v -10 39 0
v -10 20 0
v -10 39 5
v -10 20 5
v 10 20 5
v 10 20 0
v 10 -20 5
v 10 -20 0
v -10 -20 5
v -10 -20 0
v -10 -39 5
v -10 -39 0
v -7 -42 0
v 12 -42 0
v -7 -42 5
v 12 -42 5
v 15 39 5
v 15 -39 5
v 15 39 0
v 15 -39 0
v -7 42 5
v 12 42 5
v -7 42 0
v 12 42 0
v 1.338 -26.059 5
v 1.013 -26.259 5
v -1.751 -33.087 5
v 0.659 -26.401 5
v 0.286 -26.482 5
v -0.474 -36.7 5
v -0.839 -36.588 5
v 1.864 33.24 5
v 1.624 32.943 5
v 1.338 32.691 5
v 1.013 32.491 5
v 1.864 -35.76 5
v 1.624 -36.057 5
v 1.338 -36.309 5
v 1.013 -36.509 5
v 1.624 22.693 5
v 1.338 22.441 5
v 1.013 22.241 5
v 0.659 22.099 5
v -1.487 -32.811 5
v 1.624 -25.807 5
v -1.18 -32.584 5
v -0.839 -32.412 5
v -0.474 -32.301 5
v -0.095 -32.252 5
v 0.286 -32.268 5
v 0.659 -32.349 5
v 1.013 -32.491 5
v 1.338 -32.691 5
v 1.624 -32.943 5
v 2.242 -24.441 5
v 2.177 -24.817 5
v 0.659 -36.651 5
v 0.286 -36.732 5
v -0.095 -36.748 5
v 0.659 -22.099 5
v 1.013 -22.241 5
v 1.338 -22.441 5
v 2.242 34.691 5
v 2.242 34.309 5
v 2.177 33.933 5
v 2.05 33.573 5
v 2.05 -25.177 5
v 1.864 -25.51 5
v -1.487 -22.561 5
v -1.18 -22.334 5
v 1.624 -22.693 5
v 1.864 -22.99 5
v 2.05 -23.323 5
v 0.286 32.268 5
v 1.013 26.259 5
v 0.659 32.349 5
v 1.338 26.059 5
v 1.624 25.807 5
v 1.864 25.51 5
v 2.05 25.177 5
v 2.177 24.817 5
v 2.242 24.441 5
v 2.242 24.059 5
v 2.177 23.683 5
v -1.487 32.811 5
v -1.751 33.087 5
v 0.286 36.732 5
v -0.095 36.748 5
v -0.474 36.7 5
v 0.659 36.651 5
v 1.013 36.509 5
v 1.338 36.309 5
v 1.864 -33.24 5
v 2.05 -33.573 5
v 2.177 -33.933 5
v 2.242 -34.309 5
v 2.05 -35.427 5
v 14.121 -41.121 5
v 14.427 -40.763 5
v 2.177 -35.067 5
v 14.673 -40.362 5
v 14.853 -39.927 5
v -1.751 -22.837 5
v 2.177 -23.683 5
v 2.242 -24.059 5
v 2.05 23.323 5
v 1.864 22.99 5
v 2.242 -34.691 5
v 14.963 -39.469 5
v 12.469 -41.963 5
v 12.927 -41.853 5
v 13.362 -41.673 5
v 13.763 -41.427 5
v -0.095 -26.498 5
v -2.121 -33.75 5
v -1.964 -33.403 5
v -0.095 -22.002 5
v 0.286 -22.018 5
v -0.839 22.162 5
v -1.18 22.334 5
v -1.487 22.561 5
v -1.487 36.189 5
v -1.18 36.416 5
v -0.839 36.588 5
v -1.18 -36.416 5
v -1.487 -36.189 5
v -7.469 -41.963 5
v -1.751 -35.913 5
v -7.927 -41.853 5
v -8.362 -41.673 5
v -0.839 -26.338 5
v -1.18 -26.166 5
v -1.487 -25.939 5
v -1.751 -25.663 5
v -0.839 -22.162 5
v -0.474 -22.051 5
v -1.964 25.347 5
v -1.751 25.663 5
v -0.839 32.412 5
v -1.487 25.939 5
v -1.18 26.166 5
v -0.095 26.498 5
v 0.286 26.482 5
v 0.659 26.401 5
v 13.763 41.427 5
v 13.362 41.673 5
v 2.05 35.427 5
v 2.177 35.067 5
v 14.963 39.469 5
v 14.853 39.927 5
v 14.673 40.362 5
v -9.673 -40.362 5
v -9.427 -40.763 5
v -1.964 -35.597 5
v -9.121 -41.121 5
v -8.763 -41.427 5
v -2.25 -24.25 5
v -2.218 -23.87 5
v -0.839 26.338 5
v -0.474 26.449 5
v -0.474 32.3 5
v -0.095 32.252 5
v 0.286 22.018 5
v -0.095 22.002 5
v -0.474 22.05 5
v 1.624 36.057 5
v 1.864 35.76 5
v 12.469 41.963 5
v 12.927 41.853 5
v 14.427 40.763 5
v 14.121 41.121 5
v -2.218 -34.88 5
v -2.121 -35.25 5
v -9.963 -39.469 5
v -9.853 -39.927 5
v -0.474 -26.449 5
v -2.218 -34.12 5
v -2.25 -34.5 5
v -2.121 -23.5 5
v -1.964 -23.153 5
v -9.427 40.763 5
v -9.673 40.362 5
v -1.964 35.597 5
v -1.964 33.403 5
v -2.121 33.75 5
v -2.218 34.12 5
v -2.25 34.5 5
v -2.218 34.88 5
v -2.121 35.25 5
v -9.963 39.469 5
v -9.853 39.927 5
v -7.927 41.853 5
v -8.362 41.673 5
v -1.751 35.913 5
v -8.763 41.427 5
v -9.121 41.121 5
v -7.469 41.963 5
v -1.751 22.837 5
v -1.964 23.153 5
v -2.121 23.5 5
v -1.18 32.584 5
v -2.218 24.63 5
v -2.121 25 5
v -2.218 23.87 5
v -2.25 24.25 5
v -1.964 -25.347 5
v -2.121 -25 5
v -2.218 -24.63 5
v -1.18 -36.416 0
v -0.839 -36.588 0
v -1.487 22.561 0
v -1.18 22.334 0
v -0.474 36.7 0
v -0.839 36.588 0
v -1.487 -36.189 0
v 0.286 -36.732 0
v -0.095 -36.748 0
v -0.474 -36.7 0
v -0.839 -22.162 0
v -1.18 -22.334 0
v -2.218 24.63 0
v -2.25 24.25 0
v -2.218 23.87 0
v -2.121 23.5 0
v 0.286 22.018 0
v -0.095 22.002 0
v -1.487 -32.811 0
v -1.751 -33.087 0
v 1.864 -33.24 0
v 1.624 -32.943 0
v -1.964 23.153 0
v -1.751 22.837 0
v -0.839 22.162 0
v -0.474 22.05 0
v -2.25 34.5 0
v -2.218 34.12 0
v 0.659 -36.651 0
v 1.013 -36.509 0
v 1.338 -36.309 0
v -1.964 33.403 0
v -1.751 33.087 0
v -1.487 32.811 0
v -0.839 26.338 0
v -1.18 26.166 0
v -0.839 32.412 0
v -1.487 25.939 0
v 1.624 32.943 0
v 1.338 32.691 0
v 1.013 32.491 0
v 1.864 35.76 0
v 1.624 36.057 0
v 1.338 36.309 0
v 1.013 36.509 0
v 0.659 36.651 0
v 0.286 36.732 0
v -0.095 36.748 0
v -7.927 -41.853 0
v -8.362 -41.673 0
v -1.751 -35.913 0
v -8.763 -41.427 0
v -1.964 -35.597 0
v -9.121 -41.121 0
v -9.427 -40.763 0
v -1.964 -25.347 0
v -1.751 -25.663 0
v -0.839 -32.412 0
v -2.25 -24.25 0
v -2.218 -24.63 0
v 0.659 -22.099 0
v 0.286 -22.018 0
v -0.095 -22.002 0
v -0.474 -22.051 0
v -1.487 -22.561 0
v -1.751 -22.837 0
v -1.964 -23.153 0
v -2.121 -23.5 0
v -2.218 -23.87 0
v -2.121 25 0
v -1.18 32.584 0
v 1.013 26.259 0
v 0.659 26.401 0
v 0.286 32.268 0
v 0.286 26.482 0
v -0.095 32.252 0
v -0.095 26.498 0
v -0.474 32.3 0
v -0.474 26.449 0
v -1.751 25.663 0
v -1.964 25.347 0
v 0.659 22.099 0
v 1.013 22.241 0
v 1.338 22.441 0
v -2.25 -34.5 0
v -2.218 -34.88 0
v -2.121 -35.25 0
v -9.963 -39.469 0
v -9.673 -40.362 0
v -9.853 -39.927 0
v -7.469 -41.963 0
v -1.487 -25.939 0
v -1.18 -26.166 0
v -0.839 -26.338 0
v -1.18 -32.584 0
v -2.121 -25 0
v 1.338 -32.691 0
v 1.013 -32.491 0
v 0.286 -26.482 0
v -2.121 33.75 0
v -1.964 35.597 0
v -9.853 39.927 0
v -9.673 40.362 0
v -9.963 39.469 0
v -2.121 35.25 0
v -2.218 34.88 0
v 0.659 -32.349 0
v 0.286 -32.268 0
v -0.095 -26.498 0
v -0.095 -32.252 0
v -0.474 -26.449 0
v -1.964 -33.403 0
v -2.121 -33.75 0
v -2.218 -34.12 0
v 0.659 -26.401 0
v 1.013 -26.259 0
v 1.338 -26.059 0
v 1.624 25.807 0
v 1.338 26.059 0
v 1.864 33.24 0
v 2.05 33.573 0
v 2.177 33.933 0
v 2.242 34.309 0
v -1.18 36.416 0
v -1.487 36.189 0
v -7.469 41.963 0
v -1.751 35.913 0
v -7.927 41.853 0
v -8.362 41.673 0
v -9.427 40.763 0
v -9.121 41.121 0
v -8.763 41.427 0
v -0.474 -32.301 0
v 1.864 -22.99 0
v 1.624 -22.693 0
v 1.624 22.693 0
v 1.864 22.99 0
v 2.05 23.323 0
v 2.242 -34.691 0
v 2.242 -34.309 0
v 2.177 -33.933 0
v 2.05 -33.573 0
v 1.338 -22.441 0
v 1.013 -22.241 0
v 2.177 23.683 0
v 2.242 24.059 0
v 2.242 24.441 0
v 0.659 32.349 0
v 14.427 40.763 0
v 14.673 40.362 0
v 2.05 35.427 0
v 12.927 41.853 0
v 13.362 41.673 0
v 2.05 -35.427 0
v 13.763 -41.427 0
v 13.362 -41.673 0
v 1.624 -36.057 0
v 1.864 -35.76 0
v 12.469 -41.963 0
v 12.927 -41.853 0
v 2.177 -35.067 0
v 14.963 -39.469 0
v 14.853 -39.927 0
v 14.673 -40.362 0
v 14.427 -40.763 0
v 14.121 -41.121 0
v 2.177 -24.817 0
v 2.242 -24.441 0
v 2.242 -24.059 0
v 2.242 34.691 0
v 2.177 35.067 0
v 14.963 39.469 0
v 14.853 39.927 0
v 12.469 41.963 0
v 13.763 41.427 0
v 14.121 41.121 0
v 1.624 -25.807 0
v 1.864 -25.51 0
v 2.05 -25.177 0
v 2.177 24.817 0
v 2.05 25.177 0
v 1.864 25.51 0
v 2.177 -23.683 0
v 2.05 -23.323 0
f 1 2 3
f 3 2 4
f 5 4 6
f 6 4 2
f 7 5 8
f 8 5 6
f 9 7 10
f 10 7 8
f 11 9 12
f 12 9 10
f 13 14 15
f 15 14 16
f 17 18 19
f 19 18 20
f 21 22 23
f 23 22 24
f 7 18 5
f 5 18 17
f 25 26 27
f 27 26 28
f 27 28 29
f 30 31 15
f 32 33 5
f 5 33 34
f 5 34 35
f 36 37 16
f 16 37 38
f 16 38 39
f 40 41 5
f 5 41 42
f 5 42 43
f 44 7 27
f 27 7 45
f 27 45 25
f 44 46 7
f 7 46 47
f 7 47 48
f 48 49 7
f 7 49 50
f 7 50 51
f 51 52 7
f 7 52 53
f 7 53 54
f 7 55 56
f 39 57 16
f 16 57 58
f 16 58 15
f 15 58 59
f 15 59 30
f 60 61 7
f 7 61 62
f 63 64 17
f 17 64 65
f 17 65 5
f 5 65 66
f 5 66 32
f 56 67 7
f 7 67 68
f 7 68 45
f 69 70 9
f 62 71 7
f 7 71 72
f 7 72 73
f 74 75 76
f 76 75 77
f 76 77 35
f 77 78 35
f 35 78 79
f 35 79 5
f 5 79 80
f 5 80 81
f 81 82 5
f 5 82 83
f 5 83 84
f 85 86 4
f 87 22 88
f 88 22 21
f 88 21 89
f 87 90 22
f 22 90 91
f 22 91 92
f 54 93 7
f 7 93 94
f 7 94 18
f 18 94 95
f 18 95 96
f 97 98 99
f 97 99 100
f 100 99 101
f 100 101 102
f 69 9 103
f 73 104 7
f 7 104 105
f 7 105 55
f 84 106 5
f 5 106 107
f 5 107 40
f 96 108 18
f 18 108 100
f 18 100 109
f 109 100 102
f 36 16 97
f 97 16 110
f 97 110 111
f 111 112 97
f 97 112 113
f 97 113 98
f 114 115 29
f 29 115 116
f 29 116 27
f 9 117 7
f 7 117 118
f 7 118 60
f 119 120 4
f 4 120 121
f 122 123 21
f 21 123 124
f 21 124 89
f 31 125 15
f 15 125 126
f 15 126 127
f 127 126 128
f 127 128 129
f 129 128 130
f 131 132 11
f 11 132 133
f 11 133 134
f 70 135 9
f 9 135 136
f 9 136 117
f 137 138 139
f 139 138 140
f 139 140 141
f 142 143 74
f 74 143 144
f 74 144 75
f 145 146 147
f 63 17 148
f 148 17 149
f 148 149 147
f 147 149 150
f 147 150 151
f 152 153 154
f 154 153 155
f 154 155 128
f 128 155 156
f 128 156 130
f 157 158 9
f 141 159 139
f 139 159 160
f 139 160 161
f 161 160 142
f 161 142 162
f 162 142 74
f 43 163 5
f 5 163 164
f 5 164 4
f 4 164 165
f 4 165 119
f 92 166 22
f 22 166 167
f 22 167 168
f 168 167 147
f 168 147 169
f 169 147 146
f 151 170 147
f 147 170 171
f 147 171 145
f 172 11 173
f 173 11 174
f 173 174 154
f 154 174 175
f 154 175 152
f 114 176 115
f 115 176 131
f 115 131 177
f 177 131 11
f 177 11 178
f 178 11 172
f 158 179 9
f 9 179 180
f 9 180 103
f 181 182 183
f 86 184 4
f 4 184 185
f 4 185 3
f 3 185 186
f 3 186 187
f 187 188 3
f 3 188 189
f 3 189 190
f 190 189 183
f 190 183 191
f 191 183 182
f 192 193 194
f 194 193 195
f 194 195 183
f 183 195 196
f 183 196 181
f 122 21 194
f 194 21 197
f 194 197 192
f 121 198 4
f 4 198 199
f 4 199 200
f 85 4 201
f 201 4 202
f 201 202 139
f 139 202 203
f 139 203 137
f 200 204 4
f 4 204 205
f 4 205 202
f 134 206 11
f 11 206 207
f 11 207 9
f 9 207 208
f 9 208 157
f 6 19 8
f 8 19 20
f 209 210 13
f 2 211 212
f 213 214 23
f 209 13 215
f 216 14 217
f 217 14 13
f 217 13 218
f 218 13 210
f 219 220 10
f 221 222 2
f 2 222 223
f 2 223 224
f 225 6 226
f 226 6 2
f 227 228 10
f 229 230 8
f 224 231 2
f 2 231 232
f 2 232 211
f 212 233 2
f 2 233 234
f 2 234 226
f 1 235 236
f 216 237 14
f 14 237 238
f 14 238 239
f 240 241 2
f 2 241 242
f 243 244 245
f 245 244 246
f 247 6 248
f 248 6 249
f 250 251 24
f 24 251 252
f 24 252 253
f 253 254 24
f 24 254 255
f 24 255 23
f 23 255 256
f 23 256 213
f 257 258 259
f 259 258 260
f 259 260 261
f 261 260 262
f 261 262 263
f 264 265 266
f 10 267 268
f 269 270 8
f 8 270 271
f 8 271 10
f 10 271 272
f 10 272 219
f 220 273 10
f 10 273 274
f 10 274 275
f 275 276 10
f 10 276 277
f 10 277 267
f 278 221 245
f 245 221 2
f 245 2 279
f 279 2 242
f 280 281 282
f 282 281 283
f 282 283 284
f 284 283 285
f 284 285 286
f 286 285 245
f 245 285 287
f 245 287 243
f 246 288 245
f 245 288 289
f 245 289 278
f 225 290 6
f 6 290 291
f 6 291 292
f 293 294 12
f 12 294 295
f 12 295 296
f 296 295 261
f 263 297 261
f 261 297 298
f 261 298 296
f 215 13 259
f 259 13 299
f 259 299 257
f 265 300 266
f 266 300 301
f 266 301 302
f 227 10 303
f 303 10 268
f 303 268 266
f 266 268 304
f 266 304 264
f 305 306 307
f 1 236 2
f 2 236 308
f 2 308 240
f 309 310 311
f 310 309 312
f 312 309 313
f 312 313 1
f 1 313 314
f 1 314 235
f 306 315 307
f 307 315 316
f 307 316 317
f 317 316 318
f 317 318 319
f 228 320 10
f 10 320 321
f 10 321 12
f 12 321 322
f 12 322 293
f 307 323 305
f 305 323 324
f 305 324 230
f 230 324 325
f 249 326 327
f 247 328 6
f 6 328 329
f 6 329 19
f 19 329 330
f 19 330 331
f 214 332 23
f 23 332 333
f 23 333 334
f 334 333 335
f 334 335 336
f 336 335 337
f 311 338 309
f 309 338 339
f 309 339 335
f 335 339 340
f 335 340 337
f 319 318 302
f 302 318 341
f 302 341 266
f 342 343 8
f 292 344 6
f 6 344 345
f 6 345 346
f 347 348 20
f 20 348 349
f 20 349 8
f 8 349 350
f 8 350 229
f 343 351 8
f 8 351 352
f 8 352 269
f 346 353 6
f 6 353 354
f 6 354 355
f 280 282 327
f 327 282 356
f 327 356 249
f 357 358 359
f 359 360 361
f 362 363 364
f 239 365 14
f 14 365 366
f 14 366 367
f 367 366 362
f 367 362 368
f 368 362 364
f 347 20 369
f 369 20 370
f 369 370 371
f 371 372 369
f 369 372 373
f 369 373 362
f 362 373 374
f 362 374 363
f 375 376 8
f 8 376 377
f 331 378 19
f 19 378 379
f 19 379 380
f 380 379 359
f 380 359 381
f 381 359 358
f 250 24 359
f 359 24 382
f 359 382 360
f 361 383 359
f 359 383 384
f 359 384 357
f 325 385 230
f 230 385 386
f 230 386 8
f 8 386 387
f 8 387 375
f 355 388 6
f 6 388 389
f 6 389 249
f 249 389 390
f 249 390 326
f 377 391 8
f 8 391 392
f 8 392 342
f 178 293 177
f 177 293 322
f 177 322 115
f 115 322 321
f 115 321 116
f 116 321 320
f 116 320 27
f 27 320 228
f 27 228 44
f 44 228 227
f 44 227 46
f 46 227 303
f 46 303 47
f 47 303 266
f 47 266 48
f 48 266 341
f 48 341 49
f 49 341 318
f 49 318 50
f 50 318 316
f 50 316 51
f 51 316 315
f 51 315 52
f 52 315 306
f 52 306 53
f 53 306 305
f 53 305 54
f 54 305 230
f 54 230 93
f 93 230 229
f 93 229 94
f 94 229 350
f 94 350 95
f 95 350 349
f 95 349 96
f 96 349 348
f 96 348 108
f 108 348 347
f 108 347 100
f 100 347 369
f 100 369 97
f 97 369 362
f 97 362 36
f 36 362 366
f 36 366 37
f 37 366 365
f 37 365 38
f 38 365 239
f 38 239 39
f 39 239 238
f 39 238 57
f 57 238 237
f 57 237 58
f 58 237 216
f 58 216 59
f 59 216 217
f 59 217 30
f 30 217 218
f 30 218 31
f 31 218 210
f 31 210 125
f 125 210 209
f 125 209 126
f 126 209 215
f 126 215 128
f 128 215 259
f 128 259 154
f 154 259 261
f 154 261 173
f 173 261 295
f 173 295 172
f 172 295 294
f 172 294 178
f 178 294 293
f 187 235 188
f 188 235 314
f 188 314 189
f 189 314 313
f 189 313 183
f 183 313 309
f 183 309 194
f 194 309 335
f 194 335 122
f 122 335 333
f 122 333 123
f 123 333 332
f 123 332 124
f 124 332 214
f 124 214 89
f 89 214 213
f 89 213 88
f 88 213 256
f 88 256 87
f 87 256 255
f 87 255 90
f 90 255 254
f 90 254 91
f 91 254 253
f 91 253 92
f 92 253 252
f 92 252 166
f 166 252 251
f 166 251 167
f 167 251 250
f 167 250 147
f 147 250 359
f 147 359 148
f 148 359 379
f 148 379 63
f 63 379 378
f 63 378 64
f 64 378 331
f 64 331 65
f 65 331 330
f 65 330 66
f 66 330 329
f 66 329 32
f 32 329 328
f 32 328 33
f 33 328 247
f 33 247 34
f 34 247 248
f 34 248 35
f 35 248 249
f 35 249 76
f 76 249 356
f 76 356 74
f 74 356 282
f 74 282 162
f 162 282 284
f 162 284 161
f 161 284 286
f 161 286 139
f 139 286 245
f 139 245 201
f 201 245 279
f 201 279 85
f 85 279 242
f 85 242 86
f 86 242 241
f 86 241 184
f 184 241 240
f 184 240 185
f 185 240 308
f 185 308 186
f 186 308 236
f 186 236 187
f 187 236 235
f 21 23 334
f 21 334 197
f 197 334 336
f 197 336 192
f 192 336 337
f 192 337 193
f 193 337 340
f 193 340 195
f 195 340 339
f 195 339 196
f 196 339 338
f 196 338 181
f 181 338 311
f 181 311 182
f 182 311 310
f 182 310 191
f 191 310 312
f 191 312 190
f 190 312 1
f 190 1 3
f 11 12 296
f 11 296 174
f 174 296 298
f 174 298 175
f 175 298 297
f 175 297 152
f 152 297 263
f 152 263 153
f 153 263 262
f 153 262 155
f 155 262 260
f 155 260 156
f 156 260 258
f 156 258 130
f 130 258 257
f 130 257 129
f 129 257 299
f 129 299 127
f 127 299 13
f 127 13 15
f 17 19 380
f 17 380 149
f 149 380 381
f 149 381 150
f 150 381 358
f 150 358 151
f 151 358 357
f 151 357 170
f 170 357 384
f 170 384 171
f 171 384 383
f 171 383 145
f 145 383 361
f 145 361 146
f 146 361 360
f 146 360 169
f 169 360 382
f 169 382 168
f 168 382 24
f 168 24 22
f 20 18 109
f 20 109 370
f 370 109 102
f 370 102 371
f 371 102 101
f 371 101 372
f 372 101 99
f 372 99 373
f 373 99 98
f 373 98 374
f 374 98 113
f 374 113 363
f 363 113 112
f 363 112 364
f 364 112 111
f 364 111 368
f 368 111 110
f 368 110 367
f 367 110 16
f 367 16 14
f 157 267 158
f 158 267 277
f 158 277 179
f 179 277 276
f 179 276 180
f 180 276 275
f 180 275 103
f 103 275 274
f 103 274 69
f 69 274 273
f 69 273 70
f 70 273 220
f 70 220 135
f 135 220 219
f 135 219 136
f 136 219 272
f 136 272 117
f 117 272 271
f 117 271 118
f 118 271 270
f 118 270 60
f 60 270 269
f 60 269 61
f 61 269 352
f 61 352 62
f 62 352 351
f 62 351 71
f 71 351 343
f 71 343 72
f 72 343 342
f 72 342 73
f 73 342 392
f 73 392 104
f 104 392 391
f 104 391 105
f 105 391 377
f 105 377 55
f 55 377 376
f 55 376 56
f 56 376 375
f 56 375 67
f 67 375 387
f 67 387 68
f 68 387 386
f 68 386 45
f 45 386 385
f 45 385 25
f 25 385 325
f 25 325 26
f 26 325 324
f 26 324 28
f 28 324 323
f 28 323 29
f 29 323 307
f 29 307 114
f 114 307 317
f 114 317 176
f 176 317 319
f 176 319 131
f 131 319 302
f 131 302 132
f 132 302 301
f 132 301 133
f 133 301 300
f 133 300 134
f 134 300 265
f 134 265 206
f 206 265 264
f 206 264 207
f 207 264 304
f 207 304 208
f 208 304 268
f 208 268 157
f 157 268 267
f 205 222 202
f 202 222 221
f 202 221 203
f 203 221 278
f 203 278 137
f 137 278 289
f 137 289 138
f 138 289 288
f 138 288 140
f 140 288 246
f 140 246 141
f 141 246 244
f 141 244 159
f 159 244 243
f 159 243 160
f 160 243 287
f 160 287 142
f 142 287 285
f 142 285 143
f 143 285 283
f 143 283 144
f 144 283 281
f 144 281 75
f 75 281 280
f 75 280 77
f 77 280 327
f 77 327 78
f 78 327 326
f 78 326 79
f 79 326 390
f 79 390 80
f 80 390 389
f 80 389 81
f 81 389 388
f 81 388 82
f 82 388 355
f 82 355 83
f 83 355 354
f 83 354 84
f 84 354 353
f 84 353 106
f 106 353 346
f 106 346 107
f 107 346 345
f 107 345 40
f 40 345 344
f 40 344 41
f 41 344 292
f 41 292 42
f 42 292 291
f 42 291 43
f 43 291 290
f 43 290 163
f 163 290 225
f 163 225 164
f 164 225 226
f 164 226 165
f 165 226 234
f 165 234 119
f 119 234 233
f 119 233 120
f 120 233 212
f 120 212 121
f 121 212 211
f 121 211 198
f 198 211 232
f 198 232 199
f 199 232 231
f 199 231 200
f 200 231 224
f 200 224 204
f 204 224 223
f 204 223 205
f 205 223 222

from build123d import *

# Parameters (mm, degrees)
BOSS_EXTRUDE1_DEPTH  = 5
M4_CLEARANCE_HOLE1_D = 4.5
FILLET1_R            = 3
M4_CLEARANCE_HOLE2_D = 4.5


with BuildPart() as part:
    # Sketch2 → Boss-Extrude1 (new body)
    with BuildSketch(Plane.XY):
        Polygon((15, 42), (-10, 42), (-10, 20), (10, 20), (10, -20), (-10, -20), (-10, -42), (15, -42), align=None)
    extrude(amount=BOSS_EXTRUDE1_DEPTH)

    # M4 Clearance Hole1 (through all)
    with Locations(Plane(origin=(0, 0, 0), x_dir=(1, 0, 0), z_dir=(0, 0, -1))):
        with Locations((0, -34.5), (0, 34.5)):
            Hole(M4_CLEARANCE_HOLE1_D / 2)

    # Fillet1
    fillet1_edges = [part.edges().sort_by_distance(p)[0] for p in [
        (-10, 42, 2.5),
        (15, 42, 2.5),
        (15, -42, 2.5),
        (-10, -42, 2.5),
    ]]
    fillet(fillet1_edges, radius=FILLET1_R)

    # M4 Clearance Hole2 (through all)
    with Locations(Plane(origin=(0, 0, 0), x_dir=(1, 0, 0), z_dir=(0, 0, -1))):
        with Locations((0, -24.25), (0, 24.25)):
            Hole(M4_CLEARANCE_HOLE2_D / 2)


solid = part.part
